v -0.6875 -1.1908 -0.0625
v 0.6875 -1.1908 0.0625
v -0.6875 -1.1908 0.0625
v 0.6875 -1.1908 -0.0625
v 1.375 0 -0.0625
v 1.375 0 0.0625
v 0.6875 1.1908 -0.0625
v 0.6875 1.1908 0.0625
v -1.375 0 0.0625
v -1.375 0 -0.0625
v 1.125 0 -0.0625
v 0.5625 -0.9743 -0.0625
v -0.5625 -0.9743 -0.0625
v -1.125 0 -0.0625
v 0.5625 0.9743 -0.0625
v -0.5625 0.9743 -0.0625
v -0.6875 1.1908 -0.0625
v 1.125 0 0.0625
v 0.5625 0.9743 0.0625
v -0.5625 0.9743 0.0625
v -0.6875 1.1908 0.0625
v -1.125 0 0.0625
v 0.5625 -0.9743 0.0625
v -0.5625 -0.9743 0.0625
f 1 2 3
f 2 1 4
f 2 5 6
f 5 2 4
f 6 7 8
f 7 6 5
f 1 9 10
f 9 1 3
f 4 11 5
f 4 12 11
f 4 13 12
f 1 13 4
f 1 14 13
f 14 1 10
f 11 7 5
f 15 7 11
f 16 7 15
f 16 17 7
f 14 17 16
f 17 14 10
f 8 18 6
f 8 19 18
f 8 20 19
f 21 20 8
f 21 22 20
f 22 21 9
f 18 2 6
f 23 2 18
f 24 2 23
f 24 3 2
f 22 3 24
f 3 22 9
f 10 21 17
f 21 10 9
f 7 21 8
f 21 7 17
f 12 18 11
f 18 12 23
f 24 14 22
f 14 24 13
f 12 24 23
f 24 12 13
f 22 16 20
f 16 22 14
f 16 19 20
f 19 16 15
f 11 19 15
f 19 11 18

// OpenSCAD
// these units are in inches
$height = 1 / 8;
$side = 1 + 3 / 8;
$margin = 2 / 8;


module hexagon(s) {
    h = cos(30)*s;
    polygon(
        points=[
            [-s / 2,-h],
            [-s, 0],
            [-s / 2, h],
            [s / 2, h],
            [s, 0],
            [s / 2, -h],
        ], 
        paths=[
            [0,1,2,3,4,5]
        ]
    );
}

difference(){
    linear_extrude(height = $height, center = true) {
        hexagon($side);
    }

    linear_extrude(height = $height, center = true) {
        hexagon($side - $margin);
    }
}
